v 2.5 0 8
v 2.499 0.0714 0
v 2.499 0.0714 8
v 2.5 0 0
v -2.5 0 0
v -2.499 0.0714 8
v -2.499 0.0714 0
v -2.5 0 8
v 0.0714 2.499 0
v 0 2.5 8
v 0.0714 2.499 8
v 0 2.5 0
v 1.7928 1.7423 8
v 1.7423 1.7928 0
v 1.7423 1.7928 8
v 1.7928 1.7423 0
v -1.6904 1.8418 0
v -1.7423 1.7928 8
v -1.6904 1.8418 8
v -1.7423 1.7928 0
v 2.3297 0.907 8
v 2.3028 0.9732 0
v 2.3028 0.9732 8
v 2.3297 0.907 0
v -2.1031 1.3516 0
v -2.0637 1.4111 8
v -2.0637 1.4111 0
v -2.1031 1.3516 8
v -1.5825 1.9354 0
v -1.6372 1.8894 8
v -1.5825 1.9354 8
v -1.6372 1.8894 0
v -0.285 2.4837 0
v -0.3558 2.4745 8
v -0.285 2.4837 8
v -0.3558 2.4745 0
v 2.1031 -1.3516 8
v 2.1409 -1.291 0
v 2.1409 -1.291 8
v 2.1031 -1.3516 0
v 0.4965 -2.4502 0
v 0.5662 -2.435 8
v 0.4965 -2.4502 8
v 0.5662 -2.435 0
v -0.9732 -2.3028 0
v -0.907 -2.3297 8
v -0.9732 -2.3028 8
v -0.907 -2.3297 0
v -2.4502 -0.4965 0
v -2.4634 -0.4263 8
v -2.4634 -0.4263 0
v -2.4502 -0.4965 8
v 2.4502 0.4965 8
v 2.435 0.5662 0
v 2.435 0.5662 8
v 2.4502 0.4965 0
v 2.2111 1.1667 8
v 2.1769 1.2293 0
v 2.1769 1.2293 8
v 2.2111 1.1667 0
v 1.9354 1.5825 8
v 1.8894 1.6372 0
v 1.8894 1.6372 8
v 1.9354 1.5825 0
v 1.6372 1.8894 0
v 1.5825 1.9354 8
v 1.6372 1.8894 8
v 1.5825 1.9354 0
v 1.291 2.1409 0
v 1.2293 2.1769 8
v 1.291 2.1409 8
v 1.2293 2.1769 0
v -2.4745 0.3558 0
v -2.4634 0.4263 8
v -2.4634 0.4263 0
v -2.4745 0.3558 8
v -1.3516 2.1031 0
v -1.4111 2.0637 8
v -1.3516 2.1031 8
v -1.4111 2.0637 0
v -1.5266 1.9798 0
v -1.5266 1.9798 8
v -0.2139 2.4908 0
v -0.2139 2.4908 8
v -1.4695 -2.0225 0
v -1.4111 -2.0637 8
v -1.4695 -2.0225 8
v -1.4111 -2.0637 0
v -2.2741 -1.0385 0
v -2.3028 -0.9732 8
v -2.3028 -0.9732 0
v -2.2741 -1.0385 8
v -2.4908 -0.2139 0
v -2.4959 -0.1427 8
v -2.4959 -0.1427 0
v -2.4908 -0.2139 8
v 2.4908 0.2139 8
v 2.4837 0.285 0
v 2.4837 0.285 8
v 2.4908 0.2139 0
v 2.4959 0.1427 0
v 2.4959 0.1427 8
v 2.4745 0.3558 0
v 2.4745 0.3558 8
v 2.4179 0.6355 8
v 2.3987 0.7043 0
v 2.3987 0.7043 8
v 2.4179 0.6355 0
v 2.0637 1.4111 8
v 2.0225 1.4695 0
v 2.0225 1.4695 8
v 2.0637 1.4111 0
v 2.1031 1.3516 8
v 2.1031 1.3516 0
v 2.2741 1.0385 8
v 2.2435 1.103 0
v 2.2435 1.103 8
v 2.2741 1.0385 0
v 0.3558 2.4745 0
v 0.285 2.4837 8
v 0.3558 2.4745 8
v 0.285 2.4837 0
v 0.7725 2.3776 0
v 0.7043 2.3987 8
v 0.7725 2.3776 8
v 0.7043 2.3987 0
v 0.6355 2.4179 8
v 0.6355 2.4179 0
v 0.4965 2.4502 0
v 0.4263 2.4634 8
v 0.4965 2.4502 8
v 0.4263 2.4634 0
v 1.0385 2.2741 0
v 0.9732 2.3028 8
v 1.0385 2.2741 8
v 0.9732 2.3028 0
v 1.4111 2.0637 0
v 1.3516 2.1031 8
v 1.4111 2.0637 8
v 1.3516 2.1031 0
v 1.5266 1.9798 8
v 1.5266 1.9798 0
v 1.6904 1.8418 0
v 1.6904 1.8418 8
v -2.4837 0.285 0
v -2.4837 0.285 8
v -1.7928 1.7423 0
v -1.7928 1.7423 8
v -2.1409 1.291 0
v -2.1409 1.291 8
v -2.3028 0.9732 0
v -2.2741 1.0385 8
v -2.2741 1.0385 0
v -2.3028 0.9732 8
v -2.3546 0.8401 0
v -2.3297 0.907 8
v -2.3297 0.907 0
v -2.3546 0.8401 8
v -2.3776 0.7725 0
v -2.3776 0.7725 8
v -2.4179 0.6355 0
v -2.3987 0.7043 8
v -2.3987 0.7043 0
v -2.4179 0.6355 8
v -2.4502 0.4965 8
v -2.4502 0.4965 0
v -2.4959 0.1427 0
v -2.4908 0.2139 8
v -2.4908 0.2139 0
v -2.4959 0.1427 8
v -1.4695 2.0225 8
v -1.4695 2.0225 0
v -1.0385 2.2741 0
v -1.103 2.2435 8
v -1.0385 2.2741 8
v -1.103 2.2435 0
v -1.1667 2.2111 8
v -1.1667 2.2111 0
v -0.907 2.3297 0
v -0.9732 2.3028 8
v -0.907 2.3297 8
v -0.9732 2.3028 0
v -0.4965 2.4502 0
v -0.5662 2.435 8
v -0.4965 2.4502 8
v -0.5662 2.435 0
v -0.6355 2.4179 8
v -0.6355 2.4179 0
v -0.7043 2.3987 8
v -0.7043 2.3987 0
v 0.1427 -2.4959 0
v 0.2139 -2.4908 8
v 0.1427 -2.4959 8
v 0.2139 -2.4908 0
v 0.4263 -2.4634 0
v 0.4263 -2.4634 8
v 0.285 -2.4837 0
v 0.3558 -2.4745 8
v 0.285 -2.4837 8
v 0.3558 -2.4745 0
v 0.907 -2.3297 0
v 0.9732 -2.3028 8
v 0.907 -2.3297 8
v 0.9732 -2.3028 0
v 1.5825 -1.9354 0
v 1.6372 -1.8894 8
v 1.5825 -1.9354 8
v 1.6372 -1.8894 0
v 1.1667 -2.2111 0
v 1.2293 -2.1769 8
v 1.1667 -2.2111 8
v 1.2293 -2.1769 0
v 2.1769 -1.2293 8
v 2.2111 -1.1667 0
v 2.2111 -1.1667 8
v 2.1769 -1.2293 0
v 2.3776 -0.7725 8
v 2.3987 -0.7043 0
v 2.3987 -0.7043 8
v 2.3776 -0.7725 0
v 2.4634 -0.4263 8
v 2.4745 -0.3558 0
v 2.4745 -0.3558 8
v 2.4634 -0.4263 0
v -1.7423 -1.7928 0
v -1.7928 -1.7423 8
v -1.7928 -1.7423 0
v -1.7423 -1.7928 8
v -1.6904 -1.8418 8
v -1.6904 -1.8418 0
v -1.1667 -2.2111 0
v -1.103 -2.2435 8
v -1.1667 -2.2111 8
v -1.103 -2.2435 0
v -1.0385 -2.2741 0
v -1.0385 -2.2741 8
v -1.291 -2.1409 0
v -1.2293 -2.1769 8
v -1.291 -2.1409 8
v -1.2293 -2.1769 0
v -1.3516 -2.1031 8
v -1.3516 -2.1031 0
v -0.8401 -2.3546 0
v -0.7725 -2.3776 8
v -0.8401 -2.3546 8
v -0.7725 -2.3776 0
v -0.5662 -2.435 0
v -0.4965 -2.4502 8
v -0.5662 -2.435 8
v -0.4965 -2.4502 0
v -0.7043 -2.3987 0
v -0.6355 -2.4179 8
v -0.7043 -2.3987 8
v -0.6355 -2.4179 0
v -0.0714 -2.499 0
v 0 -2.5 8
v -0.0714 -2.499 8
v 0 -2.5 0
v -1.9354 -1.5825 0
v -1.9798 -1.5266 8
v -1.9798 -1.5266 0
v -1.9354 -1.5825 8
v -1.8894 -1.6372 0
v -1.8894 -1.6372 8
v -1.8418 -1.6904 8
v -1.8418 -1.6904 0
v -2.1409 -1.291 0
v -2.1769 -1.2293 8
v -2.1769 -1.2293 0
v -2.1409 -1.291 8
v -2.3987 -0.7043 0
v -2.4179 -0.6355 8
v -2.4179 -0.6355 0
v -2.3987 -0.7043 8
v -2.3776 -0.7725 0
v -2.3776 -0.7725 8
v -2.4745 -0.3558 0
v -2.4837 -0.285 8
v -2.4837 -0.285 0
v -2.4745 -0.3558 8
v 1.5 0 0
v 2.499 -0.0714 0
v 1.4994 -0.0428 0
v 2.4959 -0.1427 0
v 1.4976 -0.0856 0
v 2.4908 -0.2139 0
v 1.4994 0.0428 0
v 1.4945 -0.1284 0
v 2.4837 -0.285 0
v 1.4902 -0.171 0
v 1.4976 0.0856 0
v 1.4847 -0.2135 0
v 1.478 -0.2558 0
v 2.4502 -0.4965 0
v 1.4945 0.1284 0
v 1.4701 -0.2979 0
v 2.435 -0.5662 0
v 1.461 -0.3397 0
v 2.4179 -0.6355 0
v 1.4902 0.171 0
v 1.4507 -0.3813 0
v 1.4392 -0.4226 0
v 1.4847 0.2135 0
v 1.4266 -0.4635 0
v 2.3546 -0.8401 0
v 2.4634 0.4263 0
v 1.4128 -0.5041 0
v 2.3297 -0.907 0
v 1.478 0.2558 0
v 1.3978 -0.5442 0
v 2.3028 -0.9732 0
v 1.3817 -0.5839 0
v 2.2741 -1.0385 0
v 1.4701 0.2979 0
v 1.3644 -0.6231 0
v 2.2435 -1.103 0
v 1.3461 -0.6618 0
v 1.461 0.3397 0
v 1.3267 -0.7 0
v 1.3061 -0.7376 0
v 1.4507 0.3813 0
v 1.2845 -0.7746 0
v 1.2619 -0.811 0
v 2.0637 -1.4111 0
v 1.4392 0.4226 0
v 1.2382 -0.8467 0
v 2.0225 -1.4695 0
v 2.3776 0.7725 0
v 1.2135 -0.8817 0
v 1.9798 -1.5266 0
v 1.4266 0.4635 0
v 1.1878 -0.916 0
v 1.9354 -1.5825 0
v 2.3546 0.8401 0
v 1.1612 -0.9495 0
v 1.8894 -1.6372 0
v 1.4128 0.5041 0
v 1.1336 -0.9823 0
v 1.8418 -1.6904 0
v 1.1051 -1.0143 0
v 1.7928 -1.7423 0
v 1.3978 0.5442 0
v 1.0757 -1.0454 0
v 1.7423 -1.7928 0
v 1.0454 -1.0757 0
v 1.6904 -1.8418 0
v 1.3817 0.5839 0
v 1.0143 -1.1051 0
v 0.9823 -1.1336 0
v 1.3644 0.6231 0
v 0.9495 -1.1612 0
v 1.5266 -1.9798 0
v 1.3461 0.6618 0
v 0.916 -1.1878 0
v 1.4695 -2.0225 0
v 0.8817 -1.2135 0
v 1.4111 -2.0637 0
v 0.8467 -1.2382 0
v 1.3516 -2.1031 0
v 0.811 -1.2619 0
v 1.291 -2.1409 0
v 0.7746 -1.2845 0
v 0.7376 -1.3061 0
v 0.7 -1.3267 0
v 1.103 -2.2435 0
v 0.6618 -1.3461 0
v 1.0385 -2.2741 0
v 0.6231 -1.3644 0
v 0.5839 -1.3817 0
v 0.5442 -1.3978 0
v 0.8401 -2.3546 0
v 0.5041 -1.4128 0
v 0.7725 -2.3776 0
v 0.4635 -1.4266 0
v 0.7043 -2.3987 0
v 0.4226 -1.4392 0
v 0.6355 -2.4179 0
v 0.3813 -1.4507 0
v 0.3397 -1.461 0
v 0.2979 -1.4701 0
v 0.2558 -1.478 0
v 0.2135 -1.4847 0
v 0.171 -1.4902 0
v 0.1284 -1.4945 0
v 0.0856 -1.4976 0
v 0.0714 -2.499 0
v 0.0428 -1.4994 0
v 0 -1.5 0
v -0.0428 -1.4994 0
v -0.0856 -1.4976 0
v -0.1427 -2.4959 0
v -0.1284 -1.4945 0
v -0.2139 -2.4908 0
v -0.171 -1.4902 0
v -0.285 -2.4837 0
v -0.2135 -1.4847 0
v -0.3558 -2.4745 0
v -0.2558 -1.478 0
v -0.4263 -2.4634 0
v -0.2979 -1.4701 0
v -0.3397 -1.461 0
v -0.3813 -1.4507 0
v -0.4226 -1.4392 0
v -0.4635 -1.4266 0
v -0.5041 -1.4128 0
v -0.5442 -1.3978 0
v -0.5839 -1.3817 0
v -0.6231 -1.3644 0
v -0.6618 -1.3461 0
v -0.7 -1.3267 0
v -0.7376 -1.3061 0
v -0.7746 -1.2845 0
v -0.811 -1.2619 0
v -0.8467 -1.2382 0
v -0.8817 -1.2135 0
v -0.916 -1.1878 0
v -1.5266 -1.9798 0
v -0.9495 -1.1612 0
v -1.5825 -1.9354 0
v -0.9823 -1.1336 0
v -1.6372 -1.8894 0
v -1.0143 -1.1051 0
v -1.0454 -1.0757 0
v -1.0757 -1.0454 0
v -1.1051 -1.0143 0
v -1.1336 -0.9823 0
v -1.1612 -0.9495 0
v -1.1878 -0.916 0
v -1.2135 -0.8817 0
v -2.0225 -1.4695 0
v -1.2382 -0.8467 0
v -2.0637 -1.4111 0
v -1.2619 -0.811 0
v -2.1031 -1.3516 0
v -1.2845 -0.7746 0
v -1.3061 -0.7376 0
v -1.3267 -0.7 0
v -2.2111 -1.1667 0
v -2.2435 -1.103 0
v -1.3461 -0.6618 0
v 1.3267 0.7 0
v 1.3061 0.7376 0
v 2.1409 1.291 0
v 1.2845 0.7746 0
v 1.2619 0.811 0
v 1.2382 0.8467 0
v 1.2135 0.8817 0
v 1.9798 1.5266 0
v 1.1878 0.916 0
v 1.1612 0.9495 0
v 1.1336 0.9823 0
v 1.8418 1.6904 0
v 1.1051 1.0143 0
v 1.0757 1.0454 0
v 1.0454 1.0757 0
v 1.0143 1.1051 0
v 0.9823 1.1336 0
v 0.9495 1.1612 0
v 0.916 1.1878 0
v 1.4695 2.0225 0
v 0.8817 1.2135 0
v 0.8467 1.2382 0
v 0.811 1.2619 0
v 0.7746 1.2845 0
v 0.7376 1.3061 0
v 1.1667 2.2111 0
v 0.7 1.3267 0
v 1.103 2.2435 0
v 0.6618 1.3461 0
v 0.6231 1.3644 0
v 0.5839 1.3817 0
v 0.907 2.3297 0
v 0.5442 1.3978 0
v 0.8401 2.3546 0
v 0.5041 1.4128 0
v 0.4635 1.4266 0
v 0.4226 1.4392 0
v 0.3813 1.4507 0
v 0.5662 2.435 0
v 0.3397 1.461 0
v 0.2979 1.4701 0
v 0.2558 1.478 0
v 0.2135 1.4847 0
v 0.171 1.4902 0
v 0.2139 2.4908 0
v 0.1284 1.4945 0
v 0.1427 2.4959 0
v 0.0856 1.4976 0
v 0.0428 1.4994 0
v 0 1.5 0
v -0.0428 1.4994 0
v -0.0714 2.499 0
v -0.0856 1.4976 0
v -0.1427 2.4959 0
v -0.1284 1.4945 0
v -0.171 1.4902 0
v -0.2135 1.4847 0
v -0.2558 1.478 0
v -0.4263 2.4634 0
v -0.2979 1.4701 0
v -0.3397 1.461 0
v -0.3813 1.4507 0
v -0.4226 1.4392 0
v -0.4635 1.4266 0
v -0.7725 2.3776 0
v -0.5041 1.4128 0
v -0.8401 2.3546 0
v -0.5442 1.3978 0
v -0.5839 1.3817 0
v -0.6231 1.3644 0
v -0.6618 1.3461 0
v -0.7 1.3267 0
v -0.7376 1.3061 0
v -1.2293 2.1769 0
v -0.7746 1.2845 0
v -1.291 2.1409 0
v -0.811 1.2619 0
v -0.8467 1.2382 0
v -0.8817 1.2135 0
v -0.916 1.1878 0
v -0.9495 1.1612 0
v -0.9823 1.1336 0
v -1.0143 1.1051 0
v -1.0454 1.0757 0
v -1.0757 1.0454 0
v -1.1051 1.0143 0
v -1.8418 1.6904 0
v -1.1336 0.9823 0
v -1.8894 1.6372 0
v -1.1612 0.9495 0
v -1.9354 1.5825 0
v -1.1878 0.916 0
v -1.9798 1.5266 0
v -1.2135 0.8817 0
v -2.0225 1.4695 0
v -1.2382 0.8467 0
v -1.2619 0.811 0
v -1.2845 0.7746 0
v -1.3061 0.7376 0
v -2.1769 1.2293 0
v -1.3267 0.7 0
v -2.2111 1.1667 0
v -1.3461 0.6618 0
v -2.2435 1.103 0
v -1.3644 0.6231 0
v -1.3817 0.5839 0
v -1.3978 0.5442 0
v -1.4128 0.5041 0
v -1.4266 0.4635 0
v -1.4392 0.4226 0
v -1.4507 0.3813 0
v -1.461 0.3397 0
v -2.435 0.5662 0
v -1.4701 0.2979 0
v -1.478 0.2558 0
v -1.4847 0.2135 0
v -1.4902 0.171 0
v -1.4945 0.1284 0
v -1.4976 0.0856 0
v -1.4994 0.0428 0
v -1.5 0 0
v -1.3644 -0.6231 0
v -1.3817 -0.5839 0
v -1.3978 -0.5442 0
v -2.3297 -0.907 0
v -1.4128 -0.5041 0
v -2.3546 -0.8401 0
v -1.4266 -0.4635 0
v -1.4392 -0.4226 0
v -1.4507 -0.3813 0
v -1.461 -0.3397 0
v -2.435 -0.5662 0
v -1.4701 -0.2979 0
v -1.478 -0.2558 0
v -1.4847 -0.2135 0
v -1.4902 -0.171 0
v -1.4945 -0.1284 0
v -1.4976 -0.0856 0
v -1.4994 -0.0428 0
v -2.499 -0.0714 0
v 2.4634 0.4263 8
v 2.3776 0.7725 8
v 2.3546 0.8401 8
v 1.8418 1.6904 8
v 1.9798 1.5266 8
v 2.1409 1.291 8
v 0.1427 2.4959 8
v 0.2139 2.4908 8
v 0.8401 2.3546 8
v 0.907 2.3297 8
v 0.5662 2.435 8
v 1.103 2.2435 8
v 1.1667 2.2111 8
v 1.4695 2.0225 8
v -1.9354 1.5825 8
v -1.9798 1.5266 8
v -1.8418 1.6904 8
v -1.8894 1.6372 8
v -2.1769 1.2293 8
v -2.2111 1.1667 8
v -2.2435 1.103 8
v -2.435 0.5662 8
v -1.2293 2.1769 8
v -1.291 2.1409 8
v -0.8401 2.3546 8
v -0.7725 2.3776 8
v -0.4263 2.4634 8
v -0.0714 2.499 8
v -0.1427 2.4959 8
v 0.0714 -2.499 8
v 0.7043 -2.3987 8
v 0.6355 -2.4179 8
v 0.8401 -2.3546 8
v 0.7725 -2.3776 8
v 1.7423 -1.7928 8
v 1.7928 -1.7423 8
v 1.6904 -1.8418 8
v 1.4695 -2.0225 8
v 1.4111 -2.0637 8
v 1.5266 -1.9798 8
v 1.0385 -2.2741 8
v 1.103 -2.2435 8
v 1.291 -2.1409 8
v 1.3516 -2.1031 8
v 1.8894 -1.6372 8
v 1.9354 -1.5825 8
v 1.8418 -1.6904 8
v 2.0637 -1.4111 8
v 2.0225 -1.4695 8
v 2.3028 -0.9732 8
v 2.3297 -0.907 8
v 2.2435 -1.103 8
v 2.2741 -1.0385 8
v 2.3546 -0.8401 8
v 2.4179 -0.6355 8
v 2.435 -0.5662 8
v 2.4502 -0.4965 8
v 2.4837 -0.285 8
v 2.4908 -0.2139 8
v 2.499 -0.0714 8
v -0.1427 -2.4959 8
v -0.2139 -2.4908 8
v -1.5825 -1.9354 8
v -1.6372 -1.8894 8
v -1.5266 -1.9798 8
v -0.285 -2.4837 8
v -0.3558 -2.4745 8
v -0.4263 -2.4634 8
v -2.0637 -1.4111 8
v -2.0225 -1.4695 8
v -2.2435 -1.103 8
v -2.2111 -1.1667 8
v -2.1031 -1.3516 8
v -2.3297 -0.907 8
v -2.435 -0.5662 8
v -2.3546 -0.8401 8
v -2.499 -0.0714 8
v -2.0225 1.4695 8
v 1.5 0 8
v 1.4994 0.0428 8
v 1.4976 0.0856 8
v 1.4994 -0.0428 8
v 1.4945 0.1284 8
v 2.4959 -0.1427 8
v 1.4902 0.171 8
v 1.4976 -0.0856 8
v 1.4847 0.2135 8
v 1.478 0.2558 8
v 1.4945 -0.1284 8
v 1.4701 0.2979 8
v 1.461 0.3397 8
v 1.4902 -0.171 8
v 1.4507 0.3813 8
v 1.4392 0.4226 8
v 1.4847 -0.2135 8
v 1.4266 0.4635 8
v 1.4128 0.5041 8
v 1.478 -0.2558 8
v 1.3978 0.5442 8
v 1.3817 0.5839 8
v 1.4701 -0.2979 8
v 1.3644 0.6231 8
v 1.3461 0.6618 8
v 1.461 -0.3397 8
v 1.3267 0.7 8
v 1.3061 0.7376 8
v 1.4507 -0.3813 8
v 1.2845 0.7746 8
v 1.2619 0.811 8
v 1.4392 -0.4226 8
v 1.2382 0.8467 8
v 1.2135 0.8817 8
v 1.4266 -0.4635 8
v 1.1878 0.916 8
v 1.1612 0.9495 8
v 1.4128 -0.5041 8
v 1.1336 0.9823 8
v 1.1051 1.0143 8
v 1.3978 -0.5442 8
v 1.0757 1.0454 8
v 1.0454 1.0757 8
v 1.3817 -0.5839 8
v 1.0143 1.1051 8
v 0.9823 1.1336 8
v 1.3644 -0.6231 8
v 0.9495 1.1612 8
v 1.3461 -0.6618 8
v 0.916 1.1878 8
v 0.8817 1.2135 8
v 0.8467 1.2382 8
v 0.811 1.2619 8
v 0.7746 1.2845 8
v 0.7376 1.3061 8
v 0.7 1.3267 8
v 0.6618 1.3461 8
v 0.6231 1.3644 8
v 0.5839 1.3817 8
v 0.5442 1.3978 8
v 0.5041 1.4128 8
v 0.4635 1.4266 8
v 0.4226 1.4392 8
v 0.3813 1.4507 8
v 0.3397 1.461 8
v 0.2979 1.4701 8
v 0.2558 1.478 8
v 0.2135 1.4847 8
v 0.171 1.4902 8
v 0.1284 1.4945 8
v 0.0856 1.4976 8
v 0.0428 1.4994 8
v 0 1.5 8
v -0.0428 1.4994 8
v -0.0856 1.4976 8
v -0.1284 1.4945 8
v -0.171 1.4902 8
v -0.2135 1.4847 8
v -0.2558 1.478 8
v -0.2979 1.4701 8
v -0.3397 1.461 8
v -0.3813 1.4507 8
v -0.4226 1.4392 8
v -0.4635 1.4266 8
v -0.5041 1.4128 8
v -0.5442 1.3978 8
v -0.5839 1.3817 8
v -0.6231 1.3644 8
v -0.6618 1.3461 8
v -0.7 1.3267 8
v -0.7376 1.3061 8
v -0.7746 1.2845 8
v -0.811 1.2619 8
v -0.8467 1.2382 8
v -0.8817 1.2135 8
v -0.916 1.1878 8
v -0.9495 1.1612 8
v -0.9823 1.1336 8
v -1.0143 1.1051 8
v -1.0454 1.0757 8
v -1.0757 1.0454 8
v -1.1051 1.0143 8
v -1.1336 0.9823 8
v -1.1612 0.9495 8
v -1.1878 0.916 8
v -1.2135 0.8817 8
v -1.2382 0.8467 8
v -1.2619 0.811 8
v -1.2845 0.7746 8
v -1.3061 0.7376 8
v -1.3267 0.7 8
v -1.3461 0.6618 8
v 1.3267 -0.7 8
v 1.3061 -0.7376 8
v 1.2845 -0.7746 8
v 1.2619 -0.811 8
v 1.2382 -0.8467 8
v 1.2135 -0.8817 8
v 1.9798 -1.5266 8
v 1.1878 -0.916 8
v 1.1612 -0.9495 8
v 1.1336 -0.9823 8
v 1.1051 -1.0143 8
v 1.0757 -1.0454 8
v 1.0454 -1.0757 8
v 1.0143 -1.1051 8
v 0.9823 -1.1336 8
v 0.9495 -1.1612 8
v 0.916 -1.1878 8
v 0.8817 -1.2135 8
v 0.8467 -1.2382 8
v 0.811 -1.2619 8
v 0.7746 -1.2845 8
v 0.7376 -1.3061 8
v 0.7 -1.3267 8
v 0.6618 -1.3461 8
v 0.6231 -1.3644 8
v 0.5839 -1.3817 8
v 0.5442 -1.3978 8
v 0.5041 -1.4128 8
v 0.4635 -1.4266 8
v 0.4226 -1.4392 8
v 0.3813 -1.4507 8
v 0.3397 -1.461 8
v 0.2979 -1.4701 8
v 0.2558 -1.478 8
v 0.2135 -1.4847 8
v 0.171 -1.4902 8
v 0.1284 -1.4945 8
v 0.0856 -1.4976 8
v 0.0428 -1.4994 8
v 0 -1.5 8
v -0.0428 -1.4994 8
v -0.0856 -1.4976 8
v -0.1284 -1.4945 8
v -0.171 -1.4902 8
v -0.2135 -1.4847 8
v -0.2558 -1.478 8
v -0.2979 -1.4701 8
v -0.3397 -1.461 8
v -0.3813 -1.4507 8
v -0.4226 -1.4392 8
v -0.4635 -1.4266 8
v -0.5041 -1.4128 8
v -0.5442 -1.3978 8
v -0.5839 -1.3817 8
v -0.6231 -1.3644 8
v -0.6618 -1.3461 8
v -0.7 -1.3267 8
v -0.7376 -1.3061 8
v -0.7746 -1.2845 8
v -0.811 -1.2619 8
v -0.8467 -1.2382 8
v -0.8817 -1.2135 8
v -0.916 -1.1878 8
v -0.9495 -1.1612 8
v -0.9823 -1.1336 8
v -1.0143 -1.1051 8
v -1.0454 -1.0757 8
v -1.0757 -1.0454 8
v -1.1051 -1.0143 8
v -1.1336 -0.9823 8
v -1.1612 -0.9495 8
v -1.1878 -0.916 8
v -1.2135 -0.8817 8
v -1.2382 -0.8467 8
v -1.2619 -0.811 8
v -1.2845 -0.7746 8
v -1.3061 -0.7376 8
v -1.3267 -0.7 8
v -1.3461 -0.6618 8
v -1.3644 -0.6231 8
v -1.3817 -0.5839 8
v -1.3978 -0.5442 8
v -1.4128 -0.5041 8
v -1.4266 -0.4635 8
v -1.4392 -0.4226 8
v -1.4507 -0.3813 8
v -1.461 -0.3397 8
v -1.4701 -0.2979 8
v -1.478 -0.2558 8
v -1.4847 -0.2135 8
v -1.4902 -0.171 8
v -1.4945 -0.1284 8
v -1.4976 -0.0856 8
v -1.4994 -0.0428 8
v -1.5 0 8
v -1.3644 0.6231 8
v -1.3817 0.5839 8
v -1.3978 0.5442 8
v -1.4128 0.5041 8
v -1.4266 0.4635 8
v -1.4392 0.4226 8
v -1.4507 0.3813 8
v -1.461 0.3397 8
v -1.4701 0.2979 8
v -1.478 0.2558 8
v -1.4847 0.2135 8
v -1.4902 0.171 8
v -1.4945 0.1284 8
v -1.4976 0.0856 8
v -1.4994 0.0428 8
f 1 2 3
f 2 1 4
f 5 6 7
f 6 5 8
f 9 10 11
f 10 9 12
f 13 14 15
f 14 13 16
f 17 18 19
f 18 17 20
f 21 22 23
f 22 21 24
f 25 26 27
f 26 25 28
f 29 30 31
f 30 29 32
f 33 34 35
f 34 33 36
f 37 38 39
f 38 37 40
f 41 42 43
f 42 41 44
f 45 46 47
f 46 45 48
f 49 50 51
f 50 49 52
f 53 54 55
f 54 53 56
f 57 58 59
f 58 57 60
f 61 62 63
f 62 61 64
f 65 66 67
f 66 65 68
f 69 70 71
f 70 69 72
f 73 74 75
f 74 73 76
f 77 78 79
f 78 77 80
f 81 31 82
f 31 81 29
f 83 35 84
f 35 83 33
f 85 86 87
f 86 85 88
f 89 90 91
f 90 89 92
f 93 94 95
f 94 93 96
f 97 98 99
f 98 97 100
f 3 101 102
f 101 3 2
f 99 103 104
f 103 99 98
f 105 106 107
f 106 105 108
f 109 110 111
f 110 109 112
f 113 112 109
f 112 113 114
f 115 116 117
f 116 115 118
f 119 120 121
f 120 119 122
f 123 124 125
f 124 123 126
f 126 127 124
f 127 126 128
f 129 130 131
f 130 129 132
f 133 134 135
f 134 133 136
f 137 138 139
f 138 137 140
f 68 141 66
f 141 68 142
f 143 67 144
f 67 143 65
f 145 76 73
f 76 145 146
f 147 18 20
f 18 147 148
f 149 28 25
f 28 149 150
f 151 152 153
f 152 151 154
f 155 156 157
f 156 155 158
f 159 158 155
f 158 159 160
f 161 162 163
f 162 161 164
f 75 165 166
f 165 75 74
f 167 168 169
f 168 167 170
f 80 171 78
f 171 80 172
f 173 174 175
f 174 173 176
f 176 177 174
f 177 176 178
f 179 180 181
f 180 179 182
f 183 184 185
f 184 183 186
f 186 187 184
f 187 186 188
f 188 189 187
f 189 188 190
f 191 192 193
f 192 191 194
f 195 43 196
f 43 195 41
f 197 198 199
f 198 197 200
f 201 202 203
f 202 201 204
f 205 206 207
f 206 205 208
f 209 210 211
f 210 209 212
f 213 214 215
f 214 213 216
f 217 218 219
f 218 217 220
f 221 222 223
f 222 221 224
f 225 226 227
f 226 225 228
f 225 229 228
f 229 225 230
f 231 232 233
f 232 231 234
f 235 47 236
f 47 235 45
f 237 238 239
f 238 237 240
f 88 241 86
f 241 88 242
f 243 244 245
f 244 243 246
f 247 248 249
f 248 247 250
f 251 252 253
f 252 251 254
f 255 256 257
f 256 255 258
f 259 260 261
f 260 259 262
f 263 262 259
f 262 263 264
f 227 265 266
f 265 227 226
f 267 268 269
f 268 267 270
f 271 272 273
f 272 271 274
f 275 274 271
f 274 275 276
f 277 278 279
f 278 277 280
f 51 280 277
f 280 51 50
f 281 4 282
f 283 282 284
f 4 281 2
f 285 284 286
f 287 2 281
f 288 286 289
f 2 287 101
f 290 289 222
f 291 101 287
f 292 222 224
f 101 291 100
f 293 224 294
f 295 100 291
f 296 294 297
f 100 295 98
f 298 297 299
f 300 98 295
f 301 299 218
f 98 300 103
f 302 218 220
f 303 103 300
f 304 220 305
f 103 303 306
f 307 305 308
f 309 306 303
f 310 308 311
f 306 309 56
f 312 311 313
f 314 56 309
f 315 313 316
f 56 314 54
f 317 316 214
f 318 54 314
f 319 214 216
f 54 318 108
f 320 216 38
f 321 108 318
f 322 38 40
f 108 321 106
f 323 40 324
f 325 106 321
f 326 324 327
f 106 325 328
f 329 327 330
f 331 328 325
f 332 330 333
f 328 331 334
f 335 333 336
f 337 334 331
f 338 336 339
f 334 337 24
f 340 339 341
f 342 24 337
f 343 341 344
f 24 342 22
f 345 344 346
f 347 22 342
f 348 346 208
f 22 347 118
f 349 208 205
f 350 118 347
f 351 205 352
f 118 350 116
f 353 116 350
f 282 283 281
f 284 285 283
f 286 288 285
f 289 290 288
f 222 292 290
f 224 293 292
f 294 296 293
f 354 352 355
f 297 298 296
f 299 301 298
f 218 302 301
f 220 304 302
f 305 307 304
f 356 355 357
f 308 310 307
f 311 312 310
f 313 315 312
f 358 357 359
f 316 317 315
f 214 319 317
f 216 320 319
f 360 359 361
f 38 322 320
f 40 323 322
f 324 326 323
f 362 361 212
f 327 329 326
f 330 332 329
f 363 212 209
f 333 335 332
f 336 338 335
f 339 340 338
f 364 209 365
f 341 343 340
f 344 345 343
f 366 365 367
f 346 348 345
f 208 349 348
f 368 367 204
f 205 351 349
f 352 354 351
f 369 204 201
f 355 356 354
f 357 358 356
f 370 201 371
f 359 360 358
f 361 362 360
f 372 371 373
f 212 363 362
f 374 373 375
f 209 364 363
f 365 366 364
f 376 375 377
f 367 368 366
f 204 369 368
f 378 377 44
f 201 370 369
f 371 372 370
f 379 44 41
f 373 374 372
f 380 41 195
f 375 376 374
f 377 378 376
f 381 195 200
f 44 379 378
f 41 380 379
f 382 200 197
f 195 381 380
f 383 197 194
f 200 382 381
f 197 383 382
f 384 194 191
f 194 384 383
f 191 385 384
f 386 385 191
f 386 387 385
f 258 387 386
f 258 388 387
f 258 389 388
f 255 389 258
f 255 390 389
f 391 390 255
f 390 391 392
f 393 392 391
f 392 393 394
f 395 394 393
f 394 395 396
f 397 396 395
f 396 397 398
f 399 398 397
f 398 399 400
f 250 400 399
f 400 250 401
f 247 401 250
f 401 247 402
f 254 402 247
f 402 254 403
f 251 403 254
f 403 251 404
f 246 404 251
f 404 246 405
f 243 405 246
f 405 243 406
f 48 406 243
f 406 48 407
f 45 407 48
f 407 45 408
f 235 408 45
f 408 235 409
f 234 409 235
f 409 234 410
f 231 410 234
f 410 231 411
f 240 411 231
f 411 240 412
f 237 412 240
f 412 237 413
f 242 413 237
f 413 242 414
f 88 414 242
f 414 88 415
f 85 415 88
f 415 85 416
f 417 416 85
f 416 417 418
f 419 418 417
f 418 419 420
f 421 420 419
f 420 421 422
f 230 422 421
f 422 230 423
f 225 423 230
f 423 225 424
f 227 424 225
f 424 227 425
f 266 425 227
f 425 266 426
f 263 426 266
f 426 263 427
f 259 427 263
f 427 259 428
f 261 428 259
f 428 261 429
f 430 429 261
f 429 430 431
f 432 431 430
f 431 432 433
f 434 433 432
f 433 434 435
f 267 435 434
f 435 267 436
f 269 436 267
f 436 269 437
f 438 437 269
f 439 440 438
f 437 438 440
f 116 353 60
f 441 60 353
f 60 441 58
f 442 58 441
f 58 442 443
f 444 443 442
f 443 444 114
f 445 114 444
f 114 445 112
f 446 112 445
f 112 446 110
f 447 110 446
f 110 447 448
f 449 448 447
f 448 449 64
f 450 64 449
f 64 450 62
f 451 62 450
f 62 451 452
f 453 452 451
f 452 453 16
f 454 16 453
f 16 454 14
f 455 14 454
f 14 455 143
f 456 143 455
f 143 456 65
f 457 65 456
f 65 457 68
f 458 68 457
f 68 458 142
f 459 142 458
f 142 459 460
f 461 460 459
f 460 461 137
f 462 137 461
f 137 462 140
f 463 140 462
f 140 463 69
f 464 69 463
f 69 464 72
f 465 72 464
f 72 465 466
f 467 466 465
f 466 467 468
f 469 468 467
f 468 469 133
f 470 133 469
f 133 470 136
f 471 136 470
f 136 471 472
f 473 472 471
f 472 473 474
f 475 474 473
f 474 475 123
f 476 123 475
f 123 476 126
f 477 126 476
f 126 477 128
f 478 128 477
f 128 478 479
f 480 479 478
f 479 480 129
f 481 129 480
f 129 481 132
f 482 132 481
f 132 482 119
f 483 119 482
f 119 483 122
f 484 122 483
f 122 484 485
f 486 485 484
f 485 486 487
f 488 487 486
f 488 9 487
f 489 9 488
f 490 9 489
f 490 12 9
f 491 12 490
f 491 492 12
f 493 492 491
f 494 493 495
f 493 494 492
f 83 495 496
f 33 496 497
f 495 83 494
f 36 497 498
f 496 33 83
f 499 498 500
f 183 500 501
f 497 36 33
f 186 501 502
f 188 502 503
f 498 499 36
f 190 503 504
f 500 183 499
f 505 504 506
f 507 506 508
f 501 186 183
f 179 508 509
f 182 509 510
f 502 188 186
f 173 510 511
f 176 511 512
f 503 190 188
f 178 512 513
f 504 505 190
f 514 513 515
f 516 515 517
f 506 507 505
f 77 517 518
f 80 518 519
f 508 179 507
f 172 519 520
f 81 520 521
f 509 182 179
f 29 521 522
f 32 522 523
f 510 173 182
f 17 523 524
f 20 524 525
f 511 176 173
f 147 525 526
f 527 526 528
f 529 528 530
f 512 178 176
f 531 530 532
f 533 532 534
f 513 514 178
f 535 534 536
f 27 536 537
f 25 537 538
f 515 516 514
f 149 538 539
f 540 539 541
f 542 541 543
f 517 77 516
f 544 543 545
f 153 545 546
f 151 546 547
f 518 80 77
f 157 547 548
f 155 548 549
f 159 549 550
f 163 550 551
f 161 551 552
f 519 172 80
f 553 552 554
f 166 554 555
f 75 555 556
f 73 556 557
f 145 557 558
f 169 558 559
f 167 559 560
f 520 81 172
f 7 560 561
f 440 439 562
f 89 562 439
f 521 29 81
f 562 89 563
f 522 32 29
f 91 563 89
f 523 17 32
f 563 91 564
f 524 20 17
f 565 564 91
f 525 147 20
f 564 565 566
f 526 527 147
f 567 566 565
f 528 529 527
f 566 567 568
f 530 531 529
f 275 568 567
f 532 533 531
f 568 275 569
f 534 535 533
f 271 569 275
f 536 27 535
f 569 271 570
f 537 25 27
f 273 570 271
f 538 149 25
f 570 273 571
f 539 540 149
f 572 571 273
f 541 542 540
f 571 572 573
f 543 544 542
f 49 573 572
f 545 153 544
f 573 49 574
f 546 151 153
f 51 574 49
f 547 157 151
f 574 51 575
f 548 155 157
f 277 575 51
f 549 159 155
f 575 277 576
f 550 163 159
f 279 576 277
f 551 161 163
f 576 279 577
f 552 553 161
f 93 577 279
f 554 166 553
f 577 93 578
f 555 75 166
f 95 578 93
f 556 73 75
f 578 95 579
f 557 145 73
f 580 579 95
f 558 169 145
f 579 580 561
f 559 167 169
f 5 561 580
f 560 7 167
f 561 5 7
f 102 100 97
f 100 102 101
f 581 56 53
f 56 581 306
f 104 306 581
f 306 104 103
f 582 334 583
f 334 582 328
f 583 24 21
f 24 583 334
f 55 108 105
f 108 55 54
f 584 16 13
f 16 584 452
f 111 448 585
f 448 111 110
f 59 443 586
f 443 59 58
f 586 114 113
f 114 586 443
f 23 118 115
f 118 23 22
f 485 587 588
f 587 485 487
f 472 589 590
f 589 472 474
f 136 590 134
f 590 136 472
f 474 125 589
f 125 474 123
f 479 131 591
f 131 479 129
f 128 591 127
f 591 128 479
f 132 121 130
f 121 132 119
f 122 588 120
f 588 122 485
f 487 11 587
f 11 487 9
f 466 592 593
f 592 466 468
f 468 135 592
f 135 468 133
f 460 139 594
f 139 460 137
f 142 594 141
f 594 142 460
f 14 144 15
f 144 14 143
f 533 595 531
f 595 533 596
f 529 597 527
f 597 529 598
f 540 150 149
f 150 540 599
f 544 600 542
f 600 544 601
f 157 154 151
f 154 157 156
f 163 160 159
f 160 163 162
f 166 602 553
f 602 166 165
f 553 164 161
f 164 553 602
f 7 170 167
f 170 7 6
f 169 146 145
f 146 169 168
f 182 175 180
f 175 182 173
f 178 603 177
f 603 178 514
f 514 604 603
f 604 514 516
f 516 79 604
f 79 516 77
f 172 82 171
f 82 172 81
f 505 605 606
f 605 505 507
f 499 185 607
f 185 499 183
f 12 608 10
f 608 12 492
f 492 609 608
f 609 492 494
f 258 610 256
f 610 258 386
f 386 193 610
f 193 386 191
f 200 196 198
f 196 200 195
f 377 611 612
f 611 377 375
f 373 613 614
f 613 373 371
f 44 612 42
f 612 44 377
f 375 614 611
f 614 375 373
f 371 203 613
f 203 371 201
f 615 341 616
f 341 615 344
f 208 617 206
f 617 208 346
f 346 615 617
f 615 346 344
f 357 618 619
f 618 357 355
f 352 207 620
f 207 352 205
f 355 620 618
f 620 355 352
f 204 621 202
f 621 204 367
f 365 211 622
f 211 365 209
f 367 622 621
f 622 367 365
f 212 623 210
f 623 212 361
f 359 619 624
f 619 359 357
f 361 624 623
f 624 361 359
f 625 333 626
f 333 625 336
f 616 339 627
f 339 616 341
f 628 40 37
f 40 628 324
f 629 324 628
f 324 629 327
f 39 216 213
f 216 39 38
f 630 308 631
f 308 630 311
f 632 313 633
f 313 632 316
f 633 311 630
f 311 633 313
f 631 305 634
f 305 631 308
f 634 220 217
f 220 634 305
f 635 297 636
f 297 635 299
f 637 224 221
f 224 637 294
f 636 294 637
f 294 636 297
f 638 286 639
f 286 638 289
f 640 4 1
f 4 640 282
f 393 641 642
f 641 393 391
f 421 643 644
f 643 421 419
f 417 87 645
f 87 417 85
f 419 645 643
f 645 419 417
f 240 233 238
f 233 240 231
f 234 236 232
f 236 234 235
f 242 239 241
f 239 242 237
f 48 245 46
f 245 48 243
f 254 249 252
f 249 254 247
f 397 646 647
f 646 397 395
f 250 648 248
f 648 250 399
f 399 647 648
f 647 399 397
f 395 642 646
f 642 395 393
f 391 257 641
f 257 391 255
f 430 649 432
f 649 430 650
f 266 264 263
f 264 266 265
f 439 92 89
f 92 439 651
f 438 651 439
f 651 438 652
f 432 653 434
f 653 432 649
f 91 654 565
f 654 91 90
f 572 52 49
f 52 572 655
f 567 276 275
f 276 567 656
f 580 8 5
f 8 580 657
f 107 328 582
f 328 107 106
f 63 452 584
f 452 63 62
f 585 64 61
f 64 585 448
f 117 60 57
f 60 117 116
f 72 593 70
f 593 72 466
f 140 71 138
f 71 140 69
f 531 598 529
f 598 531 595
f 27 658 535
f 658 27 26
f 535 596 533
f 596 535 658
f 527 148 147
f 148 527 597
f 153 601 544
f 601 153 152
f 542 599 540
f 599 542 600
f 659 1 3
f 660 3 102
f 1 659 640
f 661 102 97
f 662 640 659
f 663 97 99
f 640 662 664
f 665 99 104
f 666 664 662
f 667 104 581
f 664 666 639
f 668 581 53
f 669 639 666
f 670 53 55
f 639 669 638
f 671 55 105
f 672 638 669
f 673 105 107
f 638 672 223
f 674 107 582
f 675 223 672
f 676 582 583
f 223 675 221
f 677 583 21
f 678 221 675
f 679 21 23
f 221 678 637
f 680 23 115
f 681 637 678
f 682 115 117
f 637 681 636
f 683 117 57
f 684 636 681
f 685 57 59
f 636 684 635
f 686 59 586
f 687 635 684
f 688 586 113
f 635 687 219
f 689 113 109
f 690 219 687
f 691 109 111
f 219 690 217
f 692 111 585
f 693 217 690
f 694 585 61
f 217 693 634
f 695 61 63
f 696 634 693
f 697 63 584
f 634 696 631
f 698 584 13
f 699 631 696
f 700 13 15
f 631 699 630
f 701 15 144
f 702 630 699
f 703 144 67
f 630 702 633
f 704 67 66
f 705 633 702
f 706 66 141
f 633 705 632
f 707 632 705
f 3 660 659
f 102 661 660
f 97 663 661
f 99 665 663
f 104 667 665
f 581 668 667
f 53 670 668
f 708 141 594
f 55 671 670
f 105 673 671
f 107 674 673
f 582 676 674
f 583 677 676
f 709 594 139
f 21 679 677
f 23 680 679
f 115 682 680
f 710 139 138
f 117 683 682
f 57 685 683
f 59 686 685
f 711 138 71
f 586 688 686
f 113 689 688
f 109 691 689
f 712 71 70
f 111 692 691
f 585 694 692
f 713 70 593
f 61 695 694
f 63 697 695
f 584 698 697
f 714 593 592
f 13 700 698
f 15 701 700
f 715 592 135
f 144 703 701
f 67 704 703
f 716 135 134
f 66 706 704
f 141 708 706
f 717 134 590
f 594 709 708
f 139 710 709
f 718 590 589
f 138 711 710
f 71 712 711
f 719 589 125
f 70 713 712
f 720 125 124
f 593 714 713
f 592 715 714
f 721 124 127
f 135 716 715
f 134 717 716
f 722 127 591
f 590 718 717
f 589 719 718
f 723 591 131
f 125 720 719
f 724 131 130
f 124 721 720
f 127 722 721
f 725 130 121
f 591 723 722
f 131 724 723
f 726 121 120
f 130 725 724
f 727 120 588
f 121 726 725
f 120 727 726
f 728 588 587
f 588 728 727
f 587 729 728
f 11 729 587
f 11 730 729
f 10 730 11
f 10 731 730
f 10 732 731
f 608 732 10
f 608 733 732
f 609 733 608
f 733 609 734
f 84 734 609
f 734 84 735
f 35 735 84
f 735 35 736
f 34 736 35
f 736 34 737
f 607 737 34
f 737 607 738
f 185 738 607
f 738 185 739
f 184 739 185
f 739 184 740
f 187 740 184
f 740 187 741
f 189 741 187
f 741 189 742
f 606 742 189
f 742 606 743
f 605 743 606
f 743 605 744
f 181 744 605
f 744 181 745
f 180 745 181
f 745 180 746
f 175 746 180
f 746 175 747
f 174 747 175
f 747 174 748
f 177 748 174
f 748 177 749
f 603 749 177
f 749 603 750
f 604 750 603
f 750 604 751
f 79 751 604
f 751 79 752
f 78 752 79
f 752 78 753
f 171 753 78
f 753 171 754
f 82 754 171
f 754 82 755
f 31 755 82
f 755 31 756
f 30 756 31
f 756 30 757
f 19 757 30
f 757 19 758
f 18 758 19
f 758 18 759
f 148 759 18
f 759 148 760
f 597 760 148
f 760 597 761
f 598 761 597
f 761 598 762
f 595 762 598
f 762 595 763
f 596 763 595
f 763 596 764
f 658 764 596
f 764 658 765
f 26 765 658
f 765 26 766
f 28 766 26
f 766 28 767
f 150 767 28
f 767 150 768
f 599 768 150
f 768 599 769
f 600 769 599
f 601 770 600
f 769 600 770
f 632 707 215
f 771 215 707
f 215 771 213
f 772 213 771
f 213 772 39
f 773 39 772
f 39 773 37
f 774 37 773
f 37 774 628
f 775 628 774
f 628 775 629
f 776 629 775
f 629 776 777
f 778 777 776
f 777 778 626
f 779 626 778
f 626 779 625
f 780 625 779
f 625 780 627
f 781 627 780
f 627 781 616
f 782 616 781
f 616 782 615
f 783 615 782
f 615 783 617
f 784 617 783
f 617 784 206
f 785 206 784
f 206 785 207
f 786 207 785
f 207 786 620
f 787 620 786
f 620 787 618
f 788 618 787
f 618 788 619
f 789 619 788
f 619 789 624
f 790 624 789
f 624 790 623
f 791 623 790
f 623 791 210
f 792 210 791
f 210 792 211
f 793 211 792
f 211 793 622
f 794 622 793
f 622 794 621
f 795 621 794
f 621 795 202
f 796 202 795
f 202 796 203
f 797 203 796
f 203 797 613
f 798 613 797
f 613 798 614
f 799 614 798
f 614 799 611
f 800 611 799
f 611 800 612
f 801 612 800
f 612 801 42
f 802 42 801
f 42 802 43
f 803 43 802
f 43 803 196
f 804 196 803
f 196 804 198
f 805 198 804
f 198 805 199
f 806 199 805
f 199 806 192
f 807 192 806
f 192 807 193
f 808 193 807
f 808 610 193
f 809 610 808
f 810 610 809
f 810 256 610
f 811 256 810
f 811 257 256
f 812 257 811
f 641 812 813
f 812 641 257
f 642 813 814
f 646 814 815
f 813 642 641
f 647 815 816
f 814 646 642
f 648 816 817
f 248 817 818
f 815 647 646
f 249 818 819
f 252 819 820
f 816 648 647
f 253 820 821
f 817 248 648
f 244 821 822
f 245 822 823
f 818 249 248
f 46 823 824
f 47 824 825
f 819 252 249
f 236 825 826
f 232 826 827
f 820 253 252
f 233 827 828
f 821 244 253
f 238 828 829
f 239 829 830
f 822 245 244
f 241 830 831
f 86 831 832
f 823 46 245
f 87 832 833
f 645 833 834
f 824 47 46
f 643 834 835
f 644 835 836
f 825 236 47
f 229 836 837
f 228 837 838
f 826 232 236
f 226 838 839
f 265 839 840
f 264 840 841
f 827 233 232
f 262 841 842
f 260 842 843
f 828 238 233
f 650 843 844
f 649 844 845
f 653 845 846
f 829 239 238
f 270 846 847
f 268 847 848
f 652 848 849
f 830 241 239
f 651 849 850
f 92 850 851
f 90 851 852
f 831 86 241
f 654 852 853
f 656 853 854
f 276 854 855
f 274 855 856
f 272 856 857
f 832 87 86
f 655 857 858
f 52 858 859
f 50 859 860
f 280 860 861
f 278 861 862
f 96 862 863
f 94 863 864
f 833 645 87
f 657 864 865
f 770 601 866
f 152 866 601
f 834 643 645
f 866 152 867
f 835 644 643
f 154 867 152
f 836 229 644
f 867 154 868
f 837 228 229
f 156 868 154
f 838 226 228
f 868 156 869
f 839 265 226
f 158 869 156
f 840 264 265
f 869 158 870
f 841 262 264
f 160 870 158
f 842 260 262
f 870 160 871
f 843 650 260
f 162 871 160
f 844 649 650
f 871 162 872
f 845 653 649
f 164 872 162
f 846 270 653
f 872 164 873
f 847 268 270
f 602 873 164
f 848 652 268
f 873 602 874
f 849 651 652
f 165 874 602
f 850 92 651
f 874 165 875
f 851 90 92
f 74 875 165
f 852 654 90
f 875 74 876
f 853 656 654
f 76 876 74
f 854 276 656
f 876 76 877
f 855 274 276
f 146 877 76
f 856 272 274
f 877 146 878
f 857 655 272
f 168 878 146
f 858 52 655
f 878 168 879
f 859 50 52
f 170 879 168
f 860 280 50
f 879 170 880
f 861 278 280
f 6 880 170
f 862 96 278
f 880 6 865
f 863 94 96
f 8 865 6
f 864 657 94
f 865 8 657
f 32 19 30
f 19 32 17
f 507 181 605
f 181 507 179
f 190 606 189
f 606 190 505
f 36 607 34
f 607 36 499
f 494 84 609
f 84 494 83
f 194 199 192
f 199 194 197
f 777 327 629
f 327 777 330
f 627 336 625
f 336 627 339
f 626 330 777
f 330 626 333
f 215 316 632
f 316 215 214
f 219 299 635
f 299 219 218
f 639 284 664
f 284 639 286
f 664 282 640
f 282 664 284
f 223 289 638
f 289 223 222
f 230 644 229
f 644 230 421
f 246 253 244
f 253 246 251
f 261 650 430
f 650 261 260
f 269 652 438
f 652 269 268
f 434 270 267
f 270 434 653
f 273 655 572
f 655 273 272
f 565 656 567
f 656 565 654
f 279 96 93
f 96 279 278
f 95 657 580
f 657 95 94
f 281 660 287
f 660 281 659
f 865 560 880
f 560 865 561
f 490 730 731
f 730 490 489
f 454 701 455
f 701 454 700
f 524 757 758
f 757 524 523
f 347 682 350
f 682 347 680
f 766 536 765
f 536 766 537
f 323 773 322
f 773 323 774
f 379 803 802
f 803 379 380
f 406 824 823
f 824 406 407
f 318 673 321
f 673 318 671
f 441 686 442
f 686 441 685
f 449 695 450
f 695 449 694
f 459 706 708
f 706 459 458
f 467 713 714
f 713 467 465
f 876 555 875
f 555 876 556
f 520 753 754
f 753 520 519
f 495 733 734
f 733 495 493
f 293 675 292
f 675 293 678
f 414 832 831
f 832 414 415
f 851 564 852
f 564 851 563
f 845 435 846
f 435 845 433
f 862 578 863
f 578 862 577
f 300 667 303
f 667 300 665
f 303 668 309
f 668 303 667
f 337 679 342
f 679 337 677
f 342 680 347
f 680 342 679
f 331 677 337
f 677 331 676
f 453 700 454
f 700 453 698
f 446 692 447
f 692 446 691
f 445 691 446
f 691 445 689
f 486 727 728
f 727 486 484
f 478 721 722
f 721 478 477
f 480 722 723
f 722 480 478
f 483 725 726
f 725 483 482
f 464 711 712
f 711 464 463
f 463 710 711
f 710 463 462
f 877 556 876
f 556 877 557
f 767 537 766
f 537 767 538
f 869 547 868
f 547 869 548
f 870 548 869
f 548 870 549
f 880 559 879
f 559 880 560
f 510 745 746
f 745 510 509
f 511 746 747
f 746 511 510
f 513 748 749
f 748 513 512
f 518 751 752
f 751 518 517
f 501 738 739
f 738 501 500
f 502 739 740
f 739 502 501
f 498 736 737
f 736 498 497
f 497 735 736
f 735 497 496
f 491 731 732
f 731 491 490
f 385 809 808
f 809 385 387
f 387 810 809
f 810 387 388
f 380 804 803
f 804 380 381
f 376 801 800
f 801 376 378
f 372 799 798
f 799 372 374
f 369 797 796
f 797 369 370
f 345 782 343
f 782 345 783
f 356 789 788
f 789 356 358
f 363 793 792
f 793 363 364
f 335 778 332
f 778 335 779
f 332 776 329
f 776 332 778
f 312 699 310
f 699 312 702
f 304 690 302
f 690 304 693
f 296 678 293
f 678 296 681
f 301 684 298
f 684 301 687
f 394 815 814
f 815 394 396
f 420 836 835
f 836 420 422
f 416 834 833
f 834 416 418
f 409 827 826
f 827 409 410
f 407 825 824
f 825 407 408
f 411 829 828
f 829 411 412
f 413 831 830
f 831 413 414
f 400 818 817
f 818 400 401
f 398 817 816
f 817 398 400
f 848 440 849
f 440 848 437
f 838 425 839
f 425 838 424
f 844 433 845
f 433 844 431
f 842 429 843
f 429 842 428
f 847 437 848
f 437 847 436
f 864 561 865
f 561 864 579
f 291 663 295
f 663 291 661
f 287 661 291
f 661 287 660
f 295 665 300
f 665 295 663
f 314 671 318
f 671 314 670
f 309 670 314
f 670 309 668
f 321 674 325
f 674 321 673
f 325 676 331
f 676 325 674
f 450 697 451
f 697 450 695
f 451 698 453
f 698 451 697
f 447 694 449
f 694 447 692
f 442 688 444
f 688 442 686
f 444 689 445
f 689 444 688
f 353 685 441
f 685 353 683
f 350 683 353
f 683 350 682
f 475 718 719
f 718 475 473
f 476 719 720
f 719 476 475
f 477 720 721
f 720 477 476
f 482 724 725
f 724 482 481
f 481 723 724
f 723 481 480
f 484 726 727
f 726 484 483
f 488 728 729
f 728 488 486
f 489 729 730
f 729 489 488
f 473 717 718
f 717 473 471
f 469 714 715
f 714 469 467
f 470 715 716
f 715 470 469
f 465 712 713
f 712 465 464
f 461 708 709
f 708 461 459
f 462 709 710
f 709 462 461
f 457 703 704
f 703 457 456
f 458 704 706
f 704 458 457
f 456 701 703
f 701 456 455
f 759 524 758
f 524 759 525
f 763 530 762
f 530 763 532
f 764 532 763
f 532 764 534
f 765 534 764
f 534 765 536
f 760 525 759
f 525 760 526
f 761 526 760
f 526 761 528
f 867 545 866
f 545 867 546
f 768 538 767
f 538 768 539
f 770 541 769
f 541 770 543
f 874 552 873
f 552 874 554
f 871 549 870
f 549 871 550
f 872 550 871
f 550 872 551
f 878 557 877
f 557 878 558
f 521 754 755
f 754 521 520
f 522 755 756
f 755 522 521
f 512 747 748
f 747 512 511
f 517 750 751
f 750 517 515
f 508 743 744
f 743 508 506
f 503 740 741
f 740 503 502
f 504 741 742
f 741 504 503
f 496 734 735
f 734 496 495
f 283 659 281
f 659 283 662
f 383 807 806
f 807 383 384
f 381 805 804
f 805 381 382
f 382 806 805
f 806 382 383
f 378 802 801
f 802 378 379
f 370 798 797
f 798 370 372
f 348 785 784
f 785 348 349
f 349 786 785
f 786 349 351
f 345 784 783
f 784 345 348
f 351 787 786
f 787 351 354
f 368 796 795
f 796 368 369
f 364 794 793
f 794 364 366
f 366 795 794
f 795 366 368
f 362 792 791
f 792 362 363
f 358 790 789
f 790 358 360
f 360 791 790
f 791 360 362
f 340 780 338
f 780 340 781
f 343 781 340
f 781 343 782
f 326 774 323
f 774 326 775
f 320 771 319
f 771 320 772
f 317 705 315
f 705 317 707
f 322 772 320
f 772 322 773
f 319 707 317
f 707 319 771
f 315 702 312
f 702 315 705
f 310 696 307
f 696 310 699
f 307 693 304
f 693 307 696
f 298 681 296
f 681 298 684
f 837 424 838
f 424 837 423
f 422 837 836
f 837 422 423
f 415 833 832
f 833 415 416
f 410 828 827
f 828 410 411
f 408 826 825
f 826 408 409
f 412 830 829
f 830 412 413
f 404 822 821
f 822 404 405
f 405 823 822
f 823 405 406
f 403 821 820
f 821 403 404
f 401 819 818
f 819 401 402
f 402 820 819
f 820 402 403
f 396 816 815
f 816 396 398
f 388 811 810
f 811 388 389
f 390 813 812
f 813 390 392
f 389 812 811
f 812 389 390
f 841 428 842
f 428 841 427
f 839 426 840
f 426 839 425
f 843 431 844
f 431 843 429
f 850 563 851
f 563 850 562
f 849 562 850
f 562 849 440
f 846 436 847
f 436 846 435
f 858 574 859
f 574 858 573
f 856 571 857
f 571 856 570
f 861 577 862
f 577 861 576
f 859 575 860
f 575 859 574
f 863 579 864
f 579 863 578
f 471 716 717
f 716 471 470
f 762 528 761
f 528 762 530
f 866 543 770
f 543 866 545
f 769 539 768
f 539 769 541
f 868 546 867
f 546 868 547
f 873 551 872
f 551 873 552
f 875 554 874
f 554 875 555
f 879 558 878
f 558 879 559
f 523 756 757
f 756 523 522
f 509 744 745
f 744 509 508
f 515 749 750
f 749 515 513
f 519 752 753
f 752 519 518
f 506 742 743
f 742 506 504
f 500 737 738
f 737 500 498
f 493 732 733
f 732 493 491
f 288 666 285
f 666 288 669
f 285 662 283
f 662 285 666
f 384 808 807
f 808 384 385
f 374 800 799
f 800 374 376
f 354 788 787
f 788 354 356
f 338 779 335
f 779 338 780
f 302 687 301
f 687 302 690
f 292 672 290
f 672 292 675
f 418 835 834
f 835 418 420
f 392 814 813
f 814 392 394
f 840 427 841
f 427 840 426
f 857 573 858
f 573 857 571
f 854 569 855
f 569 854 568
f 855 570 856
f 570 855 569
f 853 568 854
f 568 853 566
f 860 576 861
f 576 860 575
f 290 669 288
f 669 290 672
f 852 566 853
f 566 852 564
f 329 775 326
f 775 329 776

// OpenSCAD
$fn = 220;
difference () {
    cylinder(r=2.5,h=8);
    translate([0,0,-2]) {
        cylinder(r=1.5,h=12);
    }
}
